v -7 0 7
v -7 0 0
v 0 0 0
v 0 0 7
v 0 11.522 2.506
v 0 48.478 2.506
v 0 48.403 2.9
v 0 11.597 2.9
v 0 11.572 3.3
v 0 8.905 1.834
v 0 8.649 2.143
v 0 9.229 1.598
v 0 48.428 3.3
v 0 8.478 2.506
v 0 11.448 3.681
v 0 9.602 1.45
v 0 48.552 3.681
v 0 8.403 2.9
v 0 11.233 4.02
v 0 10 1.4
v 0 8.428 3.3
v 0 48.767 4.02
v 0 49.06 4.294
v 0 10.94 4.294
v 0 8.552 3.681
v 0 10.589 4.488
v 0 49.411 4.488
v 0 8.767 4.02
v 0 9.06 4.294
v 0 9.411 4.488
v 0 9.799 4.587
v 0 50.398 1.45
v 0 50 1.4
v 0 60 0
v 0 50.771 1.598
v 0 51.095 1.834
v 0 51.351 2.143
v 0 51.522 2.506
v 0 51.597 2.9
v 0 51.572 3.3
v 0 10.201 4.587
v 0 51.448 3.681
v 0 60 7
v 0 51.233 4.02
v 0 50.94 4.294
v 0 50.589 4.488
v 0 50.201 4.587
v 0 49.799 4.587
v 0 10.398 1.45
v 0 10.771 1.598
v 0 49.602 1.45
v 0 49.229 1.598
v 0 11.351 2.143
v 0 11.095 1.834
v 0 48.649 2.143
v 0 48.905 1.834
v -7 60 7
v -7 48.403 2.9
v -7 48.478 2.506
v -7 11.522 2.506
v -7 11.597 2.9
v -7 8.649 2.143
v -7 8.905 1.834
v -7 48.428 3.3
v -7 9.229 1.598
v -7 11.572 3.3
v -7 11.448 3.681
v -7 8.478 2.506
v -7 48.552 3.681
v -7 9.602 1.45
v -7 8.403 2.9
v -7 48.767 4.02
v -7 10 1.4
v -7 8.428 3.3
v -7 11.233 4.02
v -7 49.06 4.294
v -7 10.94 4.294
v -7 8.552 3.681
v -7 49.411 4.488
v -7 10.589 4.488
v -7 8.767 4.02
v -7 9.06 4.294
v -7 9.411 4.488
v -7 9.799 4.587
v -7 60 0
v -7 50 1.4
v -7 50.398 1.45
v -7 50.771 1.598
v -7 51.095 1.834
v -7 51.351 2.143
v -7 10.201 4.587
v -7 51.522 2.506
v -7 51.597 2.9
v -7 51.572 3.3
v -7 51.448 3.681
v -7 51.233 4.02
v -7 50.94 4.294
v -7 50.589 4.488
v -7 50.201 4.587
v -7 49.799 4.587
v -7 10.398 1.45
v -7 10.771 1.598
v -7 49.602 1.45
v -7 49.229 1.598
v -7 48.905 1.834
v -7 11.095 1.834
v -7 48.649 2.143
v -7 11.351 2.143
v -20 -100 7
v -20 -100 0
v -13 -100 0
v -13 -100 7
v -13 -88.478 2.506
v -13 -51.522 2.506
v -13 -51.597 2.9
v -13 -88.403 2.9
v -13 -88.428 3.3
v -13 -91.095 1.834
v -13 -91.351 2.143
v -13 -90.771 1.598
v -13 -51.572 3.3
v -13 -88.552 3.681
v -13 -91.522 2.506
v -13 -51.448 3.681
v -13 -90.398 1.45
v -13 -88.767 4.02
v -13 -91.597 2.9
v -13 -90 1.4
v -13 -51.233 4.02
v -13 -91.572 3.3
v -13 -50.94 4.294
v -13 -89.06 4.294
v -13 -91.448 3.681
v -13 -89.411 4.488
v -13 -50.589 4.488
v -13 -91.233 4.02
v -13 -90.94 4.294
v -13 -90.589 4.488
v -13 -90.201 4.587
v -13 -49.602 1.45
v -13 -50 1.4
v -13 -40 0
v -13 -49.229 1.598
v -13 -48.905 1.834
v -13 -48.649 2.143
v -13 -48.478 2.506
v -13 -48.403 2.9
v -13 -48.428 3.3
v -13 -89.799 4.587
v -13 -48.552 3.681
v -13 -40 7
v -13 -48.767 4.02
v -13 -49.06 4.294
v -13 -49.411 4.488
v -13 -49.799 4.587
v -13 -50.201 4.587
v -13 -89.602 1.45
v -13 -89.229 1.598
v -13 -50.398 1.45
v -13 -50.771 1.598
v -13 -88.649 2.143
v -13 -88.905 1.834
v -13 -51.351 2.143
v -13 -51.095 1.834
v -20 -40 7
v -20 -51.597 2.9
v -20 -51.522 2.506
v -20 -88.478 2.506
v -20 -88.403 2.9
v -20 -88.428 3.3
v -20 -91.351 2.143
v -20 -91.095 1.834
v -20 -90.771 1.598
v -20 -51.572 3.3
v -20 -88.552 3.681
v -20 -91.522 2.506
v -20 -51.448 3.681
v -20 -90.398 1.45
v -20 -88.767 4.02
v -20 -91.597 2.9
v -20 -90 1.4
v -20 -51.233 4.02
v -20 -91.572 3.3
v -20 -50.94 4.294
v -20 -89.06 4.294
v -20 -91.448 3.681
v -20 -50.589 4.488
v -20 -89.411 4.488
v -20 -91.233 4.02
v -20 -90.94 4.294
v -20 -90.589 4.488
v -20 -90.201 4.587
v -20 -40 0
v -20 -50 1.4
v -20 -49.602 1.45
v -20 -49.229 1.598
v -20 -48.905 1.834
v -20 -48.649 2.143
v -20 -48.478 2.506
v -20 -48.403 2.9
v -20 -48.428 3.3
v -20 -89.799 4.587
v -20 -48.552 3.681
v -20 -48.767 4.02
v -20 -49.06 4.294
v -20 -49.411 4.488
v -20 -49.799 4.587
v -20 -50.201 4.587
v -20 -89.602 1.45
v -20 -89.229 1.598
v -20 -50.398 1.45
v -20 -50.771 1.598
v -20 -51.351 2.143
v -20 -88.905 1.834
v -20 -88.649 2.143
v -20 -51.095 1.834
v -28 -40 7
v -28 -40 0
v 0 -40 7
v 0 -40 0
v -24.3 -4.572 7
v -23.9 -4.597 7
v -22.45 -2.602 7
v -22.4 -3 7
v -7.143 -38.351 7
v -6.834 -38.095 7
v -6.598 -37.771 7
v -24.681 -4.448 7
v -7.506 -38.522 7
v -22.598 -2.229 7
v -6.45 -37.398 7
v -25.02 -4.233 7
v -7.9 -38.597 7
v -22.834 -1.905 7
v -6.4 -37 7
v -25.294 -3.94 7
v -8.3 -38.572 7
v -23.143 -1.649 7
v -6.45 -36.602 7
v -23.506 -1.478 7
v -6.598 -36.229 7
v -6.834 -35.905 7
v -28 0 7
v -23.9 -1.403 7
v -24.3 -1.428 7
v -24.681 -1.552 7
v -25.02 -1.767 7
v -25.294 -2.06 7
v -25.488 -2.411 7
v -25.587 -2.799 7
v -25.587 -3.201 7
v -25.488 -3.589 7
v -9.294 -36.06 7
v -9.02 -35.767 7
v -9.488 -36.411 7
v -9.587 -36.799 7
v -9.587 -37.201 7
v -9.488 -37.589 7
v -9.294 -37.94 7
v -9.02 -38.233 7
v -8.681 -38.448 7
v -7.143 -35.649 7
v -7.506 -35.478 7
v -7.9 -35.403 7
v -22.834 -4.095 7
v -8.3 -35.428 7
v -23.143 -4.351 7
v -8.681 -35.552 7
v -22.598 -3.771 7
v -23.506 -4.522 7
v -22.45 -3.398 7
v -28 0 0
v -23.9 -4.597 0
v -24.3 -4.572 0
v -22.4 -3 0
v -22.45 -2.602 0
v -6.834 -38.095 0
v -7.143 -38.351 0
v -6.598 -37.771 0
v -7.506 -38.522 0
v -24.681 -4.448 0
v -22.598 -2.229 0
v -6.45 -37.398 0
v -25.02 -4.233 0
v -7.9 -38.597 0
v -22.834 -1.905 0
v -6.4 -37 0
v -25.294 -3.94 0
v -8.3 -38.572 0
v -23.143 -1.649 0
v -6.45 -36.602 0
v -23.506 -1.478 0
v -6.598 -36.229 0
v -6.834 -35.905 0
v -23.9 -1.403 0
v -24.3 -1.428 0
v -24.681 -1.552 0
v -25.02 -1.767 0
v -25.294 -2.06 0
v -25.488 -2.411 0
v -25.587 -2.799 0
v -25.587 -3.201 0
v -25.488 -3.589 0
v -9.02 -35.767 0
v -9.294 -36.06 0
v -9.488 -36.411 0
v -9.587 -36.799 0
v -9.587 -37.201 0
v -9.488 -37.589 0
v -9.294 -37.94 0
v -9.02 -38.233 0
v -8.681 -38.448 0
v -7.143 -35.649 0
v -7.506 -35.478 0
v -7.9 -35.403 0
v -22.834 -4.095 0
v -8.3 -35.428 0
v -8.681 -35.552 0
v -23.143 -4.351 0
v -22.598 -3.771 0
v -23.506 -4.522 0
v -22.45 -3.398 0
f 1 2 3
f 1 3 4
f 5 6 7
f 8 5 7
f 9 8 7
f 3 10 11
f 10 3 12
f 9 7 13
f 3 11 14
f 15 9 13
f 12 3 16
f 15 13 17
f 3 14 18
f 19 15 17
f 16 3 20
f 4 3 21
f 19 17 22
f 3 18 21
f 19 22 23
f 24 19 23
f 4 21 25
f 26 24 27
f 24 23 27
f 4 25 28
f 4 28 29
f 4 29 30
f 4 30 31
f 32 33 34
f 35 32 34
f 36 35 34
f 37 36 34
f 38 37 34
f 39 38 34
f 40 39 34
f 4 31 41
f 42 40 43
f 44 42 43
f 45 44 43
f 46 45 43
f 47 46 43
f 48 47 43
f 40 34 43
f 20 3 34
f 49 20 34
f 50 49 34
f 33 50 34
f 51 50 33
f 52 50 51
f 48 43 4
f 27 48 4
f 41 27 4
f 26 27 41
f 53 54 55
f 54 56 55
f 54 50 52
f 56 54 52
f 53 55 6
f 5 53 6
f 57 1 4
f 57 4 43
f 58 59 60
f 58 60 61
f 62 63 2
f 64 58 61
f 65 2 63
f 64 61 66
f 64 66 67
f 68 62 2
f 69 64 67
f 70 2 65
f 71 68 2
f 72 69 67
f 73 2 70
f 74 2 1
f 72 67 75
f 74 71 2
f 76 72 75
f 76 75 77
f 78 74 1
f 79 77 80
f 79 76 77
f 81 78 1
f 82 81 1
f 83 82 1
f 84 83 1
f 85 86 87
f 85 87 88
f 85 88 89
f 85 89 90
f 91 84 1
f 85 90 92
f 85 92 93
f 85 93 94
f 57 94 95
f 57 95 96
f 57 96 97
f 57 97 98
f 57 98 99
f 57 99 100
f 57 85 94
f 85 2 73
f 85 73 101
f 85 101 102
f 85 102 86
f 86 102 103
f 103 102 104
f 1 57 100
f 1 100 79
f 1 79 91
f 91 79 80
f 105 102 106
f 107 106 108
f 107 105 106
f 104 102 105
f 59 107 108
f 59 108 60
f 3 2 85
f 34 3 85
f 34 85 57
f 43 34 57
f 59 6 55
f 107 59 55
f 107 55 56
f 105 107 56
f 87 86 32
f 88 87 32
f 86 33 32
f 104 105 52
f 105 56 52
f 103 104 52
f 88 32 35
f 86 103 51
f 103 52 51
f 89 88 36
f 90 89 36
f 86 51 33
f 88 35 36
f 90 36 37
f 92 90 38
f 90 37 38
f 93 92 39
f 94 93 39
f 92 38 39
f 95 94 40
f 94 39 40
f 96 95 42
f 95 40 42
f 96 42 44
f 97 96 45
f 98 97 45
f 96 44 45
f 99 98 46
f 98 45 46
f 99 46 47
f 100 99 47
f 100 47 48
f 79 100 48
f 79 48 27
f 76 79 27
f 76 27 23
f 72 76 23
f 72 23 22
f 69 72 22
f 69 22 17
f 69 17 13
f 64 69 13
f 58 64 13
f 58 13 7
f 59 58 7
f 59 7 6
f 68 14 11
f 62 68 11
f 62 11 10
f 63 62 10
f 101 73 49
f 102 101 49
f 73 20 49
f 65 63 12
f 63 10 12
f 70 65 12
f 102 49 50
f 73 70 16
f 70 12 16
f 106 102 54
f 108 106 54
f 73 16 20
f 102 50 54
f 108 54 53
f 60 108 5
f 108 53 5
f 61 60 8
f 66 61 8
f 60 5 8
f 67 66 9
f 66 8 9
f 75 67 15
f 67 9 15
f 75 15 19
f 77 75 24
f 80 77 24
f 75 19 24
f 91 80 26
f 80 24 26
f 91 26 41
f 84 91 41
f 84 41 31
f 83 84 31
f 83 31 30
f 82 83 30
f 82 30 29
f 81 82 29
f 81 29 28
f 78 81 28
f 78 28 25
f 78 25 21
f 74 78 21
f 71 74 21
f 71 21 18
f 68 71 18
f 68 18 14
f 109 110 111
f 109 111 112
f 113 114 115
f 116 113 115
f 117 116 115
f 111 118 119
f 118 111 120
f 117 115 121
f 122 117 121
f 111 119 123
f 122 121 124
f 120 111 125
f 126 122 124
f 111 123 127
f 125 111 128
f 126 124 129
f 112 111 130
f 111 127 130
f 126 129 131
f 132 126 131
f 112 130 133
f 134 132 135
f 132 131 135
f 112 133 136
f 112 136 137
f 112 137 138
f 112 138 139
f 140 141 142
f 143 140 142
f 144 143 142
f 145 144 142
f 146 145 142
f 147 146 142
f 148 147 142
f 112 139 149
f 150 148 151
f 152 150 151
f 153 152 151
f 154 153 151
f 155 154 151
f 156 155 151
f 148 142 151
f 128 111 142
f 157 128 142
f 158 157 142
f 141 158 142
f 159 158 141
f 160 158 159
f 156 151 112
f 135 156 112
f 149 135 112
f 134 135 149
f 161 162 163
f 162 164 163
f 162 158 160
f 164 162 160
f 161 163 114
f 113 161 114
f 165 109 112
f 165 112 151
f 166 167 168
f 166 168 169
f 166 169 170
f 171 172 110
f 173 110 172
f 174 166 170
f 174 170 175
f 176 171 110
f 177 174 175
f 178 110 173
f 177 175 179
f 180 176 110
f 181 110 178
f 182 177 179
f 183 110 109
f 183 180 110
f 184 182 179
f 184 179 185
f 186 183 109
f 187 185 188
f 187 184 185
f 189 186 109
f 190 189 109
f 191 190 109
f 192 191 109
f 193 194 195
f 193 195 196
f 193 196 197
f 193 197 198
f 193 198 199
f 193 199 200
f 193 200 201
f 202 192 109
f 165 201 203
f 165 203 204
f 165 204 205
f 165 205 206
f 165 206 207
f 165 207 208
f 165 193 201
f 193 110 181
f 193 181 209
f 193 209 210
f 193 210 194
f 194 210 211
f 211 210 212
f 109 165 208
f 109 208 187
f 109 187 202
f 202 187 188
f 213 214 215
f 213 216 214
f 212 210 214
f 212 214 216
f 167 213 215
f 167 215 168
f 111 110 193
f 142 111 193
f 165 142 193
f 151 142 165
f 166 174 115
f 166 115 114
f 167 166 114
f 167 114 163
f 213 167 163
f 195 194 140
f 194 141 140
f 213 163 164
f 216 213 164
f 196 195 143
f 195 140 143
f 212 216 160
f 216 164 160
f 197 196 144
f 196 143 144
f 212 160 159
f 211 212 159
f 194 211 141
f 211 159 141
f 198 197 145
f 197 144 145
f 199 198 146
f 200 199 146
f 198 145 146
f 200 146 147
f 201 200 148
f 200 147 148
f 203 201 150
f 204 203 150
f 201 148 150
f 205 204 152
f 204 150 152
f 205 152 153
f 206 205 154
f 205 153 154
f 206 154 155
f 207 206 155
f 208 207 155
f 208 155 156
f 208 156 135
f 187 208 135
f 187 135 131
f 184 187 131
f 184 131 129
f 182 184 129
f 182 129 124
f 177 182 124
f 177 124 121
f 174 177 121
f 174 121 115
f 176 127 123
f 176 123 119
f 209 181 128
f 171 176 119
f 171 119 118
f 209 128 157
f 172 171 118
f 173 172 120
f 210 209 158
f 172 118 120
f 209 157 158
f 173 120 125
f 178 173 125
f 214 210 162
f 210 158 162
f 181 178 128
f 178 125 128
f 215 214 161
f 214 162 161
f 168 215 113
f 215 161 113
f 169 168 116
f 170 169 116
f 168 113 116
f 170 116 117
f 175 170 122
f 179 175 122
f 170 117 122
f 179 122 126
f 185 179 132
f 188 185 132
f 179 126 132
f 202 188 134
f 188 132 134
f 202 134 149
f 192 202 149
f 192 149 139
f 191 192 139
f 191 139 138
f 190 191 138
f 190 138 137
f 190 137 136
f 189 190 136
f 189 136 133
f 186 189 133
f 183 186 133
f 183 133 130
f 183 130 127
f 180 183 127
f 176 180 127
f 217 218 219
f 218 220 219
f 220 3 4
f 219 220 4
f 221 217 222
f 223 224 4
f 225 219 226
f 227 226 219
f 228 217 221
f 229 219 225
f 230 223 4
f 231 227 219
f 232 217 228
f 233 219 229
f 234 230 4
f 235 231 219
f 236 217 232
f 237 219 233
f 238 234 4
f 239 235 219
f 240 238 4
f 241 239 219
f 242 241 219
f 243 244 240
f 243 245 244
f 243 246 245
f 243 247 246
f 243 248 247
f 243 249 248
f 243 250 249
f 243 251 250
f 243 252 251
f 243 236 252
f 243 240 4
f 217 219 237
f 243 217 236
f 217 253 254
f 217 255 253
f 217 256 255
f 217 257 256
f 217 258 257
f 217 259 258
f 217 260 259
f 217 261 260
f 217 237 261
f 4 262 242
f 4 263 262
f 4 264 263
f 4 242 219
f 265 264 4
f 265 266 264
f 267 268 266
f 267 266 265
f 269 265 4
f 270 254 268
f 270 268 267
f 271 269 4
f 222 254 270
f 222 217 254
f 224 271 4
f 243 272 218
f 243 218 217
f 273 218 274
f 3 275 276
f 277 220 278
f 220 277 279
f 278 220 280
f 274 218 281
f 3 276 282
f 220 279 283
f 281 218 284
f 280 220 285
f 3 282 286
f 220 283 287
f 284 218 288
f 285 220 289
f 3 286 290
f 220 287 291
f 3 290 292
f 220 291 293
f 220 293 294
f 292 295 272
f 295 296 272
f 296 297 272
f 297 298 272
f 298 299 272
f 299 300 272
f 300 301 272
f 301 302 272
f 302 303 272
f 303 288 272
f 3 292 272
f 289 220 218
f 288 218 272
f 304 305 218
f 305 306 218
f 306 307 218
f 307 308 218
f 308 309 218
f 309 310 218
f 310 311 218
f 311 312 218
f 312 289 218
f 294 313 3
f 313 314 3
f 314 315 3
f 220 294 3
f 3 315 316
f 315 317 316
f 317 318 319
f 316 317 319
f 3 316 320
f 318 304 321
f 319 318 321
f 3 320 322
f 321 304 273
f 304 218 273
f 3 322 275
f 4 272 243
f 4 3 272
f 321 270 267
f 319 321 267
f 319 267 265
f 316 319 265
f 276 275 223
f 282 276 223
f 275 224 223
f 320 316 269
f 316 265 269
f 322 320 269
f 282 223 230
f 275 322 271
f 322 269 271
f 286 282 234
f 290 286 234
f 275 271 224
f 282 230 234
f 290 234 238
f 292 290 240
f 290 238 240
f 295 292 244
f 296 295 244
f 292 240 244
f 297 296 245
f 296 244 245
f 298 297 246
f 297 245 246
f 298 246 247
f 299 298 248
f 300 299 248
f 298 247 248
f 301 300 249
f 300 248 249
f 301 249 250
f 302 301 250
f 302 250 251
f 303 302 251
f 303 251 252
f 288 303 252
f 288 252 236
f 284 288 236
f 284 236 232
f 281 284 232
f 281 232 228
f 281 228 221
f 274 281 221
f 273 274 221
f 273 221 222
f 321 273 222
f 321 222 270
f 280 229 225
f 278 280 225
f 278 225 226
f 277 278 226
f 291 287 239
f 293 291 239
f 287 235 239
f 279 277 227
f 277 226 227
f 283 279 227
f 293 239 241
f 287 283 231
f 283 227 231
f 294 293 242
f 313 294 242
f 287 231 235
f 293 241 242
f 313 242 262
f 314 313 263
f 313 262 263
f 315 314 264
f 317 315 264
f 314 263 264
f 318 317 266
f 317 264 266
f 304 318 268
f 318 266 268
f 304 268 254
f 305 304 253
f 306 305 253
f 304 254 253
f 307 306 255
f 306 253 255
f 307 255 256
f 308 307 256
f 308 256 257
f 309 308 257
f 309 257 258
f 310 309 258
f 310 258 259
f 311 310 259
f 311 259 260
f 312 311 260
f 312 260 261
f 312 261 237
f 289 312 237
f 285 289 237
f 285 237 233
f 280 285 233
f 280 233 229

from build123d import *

# Parameters (mm, degrees)
CYLINDER001_R           = 1.6
CYLINDER001_DEPTH       = 20
CYLINDER001_PITCH_ANGLE = 90
CYLINDER_R              = 1.6
CYLINDER_DEPTH          = 20
CYLINDER_PITCH_ANGLE    = 90
BOX_W                   = 60
BOX_H                   = 7
BOX_DEPTH               = 7
BOX_PLACEMENT_ANGLE     = 90
CYLINDER003_R           = 1.6
CYLINDER003_DEPTH       = 20
CYLINDER003_PITCH_ANGLE = 90
CYLINDER002_R           = 1.6
CYLINDER002_DEPTH       = 20
CYLINDER002_PITCH_ANGLE = 90
BOX002_W                = 60
BOX002_H                = 7
BOX002_DEPTH            = 7
BOX002_PLACEMENT_ANGLE  = 90
CYLINDER005_R           = 1.6
CYLINDER005_DEPTH       = 20
CYLINDER004_R           = 1.6
CYLINDER004_DEPTH       = 20
BOX001_W                = 40
BOX001_H                = 28
BOX001_DEPTH            = 7
BOX001_PLACEMENT_ANGLE  = 90


with BuildPart() as cylindre011:
    # Cylinder001 → Cylinder001 (new body)
    with BuildSketch(Plane.XY):
        Circle(CYLINDER001_R)
    extrude(amount=CYLINDER001_DEPTH)


with BuildPart() as cylindre011_1:
    # Cylinder001 pitch: moved
    add(cylindre011.part.rotate(Axis((0, 0, 0), (0, 1, 0)), CYLINDER001_PITCH_ANGLE))


with BuildPart() as cylindre011_2:
    # Cylinder001 placement: moved
    add(cylindre011_1.part.moved(Location((-12, 50, 3))))


with BuildPart() as cylindre010:
    # Cylinder → Cylinder (new body)
    with BuildSketch(Plane.XY):
        Circle(CYLINDER_R)
    extrude(amount=CYLINDER_DEPTH)


with BuildPart() as cylindre010_1:
    # Cylinder pitch: moved
    add(cylindre010.part.rotate(Axis((0, 0, 0), (0, 1, 0)), CYLINDER_PITCH_ANGLE))


with BuildPart() as cylindre010_2:
    # Cylinder placement: moved
    add(cylindre010_1.part.moved(Location((-12, 10, 3))))


with BuildPart() as cut001:
    # Box → Box (new body)
    with BuildSketch(Plane.XY):
        with Locations((30, 3.5)):
            Rectangle(BOX_W, BOX_H)
    extrude(amount=BOX_DEPTH)


with BuildPart() as cut001_1:
    # Box placement: moved
    add(cut001.part.rotate(Axis((0, 0, 0), (0, 0, 1)), BOX_PLACEMENT_ANGLE))

    # Cut: cut Cylindre010
    add(cylindre010_2.part, mode=Mode.SUBTRACT)

    # Cut001: cut Cylindre011
    add(cylindre011_2.part, mode=Mode.SUBTRACT)


with BuildPart() as cylindre013:
    # Cylinder003 → Cylinder003 (new body)
    with BuildSketch(Plane.XY):
        Circle(CYLINDER003_R)
    extrude(amount=CYLINDER003_DEPTH)


with BuildPart() as cylindre013_1:
    # Cylinder003 pitch: moved
    add(cylindre013.part.rotate(Axis((0, 0, 0), (0, 1, 0)), CYLINDER003_PITCH_ANGLE))


with BuildPart() as cylindre013_2:
    # Cylinder003 placement: moved
    add(cylindre013_1.part.moved(Location((-20, -50, 3))))


with BuildPart() as cylindre012:
    # Cylinder002 → Cylinder002 (new body)
    with BuildSketch(Plane.XY):
        Circle(CYLINDER002_R)
    extrude(amount=CYLINDER002_DEPTH)


with BuildPart() as cylindre012_1:
    # Cylinder002 pitch: moved
    add(cylindre012.part.rotate(Axis((0, 0, 0), (0, 1, 0)), CYLINDER002_PITCH_ANGLE))


with BuildPart() as cylindre012_2:
    # Cylinder002 placement: moved
    add(cylindre012_1.part.moved(Location((-20, -90, 3))))


with BuildPart() as cut003:
    # Box002 → Box002 (new body)
    with BuildSketch(Plane.XY):
        with Locations((30, 3.5)):
            Rectangle(BOX002_W, BOX002_H)
    extrude(amount=BOX002_DEPTH)


with BuildPart() as cut003_1:
    # Box002 placement: moved
    add(cut003.part.moved(Location((-13, -100, 0))).rotate(Axis((-13, -100, 0), (0, 0, 1)), BOX002_PLACEMENT_ANGLE))

    # Cut002: cut Cylindre012
    add(cylindre012_2.part, mode=Mode.SUBTRACT)

    # Cut003: cut Cylindre013
    add(cylindre013_2.part, mode=Mode.SUBTRACT)


with BuildPart() as cylindre015:
    # Cylinder005 → Cylinder005 (new body)
    with BuildSketch(Plane(origin=(-24, -3, -9), x_dir=(1, 0, 0), z_dir=(0, 0, 1))):
        Circle(CYLINDER005_R)
    extrude(amount=CYLINDER005_DEPTH)


with BuildPart() as cylindre014:
    # Cylinder004 → Cylinder004 (new body)
    with BuildSketch(Plane(origin=(-8, -37, -9), x_dir=(1, 0, 0), z_dir=(0, 0, 1))):
        Circle(CYLINDER004_R)
    extrude(amount=CYLINDER004_DEPTH)


with BuildPart() as cut005:
    # Box001 → Box001 (new body)
    with BuildSketch(Plane.XY):
        with Locations((20, 14)):
            Rectangle(BOX001_W, BOX001_H)
    extrude(amount=BOX001_DEPTH)


with BuildPart() as cut005_1:
    # Box001 placement: moved
    add(cut005.part.moved(Location((0, -40, 0))).rotate(Axis((0, -40, 0), (0, 0, 1)), BOX001_PLACEMENT_ANGLE))

    # Cut004: cut Cylindre014
    add(cylindre014.part, mode=Mode.SUBTRACT)

    # Cut005: cut Cylindre015
    add(cylindre015.part, mode=Mode.SUBTRACT)


solid = Compound([cut001_1.part, cut003_1.part, cut005_1.part])
